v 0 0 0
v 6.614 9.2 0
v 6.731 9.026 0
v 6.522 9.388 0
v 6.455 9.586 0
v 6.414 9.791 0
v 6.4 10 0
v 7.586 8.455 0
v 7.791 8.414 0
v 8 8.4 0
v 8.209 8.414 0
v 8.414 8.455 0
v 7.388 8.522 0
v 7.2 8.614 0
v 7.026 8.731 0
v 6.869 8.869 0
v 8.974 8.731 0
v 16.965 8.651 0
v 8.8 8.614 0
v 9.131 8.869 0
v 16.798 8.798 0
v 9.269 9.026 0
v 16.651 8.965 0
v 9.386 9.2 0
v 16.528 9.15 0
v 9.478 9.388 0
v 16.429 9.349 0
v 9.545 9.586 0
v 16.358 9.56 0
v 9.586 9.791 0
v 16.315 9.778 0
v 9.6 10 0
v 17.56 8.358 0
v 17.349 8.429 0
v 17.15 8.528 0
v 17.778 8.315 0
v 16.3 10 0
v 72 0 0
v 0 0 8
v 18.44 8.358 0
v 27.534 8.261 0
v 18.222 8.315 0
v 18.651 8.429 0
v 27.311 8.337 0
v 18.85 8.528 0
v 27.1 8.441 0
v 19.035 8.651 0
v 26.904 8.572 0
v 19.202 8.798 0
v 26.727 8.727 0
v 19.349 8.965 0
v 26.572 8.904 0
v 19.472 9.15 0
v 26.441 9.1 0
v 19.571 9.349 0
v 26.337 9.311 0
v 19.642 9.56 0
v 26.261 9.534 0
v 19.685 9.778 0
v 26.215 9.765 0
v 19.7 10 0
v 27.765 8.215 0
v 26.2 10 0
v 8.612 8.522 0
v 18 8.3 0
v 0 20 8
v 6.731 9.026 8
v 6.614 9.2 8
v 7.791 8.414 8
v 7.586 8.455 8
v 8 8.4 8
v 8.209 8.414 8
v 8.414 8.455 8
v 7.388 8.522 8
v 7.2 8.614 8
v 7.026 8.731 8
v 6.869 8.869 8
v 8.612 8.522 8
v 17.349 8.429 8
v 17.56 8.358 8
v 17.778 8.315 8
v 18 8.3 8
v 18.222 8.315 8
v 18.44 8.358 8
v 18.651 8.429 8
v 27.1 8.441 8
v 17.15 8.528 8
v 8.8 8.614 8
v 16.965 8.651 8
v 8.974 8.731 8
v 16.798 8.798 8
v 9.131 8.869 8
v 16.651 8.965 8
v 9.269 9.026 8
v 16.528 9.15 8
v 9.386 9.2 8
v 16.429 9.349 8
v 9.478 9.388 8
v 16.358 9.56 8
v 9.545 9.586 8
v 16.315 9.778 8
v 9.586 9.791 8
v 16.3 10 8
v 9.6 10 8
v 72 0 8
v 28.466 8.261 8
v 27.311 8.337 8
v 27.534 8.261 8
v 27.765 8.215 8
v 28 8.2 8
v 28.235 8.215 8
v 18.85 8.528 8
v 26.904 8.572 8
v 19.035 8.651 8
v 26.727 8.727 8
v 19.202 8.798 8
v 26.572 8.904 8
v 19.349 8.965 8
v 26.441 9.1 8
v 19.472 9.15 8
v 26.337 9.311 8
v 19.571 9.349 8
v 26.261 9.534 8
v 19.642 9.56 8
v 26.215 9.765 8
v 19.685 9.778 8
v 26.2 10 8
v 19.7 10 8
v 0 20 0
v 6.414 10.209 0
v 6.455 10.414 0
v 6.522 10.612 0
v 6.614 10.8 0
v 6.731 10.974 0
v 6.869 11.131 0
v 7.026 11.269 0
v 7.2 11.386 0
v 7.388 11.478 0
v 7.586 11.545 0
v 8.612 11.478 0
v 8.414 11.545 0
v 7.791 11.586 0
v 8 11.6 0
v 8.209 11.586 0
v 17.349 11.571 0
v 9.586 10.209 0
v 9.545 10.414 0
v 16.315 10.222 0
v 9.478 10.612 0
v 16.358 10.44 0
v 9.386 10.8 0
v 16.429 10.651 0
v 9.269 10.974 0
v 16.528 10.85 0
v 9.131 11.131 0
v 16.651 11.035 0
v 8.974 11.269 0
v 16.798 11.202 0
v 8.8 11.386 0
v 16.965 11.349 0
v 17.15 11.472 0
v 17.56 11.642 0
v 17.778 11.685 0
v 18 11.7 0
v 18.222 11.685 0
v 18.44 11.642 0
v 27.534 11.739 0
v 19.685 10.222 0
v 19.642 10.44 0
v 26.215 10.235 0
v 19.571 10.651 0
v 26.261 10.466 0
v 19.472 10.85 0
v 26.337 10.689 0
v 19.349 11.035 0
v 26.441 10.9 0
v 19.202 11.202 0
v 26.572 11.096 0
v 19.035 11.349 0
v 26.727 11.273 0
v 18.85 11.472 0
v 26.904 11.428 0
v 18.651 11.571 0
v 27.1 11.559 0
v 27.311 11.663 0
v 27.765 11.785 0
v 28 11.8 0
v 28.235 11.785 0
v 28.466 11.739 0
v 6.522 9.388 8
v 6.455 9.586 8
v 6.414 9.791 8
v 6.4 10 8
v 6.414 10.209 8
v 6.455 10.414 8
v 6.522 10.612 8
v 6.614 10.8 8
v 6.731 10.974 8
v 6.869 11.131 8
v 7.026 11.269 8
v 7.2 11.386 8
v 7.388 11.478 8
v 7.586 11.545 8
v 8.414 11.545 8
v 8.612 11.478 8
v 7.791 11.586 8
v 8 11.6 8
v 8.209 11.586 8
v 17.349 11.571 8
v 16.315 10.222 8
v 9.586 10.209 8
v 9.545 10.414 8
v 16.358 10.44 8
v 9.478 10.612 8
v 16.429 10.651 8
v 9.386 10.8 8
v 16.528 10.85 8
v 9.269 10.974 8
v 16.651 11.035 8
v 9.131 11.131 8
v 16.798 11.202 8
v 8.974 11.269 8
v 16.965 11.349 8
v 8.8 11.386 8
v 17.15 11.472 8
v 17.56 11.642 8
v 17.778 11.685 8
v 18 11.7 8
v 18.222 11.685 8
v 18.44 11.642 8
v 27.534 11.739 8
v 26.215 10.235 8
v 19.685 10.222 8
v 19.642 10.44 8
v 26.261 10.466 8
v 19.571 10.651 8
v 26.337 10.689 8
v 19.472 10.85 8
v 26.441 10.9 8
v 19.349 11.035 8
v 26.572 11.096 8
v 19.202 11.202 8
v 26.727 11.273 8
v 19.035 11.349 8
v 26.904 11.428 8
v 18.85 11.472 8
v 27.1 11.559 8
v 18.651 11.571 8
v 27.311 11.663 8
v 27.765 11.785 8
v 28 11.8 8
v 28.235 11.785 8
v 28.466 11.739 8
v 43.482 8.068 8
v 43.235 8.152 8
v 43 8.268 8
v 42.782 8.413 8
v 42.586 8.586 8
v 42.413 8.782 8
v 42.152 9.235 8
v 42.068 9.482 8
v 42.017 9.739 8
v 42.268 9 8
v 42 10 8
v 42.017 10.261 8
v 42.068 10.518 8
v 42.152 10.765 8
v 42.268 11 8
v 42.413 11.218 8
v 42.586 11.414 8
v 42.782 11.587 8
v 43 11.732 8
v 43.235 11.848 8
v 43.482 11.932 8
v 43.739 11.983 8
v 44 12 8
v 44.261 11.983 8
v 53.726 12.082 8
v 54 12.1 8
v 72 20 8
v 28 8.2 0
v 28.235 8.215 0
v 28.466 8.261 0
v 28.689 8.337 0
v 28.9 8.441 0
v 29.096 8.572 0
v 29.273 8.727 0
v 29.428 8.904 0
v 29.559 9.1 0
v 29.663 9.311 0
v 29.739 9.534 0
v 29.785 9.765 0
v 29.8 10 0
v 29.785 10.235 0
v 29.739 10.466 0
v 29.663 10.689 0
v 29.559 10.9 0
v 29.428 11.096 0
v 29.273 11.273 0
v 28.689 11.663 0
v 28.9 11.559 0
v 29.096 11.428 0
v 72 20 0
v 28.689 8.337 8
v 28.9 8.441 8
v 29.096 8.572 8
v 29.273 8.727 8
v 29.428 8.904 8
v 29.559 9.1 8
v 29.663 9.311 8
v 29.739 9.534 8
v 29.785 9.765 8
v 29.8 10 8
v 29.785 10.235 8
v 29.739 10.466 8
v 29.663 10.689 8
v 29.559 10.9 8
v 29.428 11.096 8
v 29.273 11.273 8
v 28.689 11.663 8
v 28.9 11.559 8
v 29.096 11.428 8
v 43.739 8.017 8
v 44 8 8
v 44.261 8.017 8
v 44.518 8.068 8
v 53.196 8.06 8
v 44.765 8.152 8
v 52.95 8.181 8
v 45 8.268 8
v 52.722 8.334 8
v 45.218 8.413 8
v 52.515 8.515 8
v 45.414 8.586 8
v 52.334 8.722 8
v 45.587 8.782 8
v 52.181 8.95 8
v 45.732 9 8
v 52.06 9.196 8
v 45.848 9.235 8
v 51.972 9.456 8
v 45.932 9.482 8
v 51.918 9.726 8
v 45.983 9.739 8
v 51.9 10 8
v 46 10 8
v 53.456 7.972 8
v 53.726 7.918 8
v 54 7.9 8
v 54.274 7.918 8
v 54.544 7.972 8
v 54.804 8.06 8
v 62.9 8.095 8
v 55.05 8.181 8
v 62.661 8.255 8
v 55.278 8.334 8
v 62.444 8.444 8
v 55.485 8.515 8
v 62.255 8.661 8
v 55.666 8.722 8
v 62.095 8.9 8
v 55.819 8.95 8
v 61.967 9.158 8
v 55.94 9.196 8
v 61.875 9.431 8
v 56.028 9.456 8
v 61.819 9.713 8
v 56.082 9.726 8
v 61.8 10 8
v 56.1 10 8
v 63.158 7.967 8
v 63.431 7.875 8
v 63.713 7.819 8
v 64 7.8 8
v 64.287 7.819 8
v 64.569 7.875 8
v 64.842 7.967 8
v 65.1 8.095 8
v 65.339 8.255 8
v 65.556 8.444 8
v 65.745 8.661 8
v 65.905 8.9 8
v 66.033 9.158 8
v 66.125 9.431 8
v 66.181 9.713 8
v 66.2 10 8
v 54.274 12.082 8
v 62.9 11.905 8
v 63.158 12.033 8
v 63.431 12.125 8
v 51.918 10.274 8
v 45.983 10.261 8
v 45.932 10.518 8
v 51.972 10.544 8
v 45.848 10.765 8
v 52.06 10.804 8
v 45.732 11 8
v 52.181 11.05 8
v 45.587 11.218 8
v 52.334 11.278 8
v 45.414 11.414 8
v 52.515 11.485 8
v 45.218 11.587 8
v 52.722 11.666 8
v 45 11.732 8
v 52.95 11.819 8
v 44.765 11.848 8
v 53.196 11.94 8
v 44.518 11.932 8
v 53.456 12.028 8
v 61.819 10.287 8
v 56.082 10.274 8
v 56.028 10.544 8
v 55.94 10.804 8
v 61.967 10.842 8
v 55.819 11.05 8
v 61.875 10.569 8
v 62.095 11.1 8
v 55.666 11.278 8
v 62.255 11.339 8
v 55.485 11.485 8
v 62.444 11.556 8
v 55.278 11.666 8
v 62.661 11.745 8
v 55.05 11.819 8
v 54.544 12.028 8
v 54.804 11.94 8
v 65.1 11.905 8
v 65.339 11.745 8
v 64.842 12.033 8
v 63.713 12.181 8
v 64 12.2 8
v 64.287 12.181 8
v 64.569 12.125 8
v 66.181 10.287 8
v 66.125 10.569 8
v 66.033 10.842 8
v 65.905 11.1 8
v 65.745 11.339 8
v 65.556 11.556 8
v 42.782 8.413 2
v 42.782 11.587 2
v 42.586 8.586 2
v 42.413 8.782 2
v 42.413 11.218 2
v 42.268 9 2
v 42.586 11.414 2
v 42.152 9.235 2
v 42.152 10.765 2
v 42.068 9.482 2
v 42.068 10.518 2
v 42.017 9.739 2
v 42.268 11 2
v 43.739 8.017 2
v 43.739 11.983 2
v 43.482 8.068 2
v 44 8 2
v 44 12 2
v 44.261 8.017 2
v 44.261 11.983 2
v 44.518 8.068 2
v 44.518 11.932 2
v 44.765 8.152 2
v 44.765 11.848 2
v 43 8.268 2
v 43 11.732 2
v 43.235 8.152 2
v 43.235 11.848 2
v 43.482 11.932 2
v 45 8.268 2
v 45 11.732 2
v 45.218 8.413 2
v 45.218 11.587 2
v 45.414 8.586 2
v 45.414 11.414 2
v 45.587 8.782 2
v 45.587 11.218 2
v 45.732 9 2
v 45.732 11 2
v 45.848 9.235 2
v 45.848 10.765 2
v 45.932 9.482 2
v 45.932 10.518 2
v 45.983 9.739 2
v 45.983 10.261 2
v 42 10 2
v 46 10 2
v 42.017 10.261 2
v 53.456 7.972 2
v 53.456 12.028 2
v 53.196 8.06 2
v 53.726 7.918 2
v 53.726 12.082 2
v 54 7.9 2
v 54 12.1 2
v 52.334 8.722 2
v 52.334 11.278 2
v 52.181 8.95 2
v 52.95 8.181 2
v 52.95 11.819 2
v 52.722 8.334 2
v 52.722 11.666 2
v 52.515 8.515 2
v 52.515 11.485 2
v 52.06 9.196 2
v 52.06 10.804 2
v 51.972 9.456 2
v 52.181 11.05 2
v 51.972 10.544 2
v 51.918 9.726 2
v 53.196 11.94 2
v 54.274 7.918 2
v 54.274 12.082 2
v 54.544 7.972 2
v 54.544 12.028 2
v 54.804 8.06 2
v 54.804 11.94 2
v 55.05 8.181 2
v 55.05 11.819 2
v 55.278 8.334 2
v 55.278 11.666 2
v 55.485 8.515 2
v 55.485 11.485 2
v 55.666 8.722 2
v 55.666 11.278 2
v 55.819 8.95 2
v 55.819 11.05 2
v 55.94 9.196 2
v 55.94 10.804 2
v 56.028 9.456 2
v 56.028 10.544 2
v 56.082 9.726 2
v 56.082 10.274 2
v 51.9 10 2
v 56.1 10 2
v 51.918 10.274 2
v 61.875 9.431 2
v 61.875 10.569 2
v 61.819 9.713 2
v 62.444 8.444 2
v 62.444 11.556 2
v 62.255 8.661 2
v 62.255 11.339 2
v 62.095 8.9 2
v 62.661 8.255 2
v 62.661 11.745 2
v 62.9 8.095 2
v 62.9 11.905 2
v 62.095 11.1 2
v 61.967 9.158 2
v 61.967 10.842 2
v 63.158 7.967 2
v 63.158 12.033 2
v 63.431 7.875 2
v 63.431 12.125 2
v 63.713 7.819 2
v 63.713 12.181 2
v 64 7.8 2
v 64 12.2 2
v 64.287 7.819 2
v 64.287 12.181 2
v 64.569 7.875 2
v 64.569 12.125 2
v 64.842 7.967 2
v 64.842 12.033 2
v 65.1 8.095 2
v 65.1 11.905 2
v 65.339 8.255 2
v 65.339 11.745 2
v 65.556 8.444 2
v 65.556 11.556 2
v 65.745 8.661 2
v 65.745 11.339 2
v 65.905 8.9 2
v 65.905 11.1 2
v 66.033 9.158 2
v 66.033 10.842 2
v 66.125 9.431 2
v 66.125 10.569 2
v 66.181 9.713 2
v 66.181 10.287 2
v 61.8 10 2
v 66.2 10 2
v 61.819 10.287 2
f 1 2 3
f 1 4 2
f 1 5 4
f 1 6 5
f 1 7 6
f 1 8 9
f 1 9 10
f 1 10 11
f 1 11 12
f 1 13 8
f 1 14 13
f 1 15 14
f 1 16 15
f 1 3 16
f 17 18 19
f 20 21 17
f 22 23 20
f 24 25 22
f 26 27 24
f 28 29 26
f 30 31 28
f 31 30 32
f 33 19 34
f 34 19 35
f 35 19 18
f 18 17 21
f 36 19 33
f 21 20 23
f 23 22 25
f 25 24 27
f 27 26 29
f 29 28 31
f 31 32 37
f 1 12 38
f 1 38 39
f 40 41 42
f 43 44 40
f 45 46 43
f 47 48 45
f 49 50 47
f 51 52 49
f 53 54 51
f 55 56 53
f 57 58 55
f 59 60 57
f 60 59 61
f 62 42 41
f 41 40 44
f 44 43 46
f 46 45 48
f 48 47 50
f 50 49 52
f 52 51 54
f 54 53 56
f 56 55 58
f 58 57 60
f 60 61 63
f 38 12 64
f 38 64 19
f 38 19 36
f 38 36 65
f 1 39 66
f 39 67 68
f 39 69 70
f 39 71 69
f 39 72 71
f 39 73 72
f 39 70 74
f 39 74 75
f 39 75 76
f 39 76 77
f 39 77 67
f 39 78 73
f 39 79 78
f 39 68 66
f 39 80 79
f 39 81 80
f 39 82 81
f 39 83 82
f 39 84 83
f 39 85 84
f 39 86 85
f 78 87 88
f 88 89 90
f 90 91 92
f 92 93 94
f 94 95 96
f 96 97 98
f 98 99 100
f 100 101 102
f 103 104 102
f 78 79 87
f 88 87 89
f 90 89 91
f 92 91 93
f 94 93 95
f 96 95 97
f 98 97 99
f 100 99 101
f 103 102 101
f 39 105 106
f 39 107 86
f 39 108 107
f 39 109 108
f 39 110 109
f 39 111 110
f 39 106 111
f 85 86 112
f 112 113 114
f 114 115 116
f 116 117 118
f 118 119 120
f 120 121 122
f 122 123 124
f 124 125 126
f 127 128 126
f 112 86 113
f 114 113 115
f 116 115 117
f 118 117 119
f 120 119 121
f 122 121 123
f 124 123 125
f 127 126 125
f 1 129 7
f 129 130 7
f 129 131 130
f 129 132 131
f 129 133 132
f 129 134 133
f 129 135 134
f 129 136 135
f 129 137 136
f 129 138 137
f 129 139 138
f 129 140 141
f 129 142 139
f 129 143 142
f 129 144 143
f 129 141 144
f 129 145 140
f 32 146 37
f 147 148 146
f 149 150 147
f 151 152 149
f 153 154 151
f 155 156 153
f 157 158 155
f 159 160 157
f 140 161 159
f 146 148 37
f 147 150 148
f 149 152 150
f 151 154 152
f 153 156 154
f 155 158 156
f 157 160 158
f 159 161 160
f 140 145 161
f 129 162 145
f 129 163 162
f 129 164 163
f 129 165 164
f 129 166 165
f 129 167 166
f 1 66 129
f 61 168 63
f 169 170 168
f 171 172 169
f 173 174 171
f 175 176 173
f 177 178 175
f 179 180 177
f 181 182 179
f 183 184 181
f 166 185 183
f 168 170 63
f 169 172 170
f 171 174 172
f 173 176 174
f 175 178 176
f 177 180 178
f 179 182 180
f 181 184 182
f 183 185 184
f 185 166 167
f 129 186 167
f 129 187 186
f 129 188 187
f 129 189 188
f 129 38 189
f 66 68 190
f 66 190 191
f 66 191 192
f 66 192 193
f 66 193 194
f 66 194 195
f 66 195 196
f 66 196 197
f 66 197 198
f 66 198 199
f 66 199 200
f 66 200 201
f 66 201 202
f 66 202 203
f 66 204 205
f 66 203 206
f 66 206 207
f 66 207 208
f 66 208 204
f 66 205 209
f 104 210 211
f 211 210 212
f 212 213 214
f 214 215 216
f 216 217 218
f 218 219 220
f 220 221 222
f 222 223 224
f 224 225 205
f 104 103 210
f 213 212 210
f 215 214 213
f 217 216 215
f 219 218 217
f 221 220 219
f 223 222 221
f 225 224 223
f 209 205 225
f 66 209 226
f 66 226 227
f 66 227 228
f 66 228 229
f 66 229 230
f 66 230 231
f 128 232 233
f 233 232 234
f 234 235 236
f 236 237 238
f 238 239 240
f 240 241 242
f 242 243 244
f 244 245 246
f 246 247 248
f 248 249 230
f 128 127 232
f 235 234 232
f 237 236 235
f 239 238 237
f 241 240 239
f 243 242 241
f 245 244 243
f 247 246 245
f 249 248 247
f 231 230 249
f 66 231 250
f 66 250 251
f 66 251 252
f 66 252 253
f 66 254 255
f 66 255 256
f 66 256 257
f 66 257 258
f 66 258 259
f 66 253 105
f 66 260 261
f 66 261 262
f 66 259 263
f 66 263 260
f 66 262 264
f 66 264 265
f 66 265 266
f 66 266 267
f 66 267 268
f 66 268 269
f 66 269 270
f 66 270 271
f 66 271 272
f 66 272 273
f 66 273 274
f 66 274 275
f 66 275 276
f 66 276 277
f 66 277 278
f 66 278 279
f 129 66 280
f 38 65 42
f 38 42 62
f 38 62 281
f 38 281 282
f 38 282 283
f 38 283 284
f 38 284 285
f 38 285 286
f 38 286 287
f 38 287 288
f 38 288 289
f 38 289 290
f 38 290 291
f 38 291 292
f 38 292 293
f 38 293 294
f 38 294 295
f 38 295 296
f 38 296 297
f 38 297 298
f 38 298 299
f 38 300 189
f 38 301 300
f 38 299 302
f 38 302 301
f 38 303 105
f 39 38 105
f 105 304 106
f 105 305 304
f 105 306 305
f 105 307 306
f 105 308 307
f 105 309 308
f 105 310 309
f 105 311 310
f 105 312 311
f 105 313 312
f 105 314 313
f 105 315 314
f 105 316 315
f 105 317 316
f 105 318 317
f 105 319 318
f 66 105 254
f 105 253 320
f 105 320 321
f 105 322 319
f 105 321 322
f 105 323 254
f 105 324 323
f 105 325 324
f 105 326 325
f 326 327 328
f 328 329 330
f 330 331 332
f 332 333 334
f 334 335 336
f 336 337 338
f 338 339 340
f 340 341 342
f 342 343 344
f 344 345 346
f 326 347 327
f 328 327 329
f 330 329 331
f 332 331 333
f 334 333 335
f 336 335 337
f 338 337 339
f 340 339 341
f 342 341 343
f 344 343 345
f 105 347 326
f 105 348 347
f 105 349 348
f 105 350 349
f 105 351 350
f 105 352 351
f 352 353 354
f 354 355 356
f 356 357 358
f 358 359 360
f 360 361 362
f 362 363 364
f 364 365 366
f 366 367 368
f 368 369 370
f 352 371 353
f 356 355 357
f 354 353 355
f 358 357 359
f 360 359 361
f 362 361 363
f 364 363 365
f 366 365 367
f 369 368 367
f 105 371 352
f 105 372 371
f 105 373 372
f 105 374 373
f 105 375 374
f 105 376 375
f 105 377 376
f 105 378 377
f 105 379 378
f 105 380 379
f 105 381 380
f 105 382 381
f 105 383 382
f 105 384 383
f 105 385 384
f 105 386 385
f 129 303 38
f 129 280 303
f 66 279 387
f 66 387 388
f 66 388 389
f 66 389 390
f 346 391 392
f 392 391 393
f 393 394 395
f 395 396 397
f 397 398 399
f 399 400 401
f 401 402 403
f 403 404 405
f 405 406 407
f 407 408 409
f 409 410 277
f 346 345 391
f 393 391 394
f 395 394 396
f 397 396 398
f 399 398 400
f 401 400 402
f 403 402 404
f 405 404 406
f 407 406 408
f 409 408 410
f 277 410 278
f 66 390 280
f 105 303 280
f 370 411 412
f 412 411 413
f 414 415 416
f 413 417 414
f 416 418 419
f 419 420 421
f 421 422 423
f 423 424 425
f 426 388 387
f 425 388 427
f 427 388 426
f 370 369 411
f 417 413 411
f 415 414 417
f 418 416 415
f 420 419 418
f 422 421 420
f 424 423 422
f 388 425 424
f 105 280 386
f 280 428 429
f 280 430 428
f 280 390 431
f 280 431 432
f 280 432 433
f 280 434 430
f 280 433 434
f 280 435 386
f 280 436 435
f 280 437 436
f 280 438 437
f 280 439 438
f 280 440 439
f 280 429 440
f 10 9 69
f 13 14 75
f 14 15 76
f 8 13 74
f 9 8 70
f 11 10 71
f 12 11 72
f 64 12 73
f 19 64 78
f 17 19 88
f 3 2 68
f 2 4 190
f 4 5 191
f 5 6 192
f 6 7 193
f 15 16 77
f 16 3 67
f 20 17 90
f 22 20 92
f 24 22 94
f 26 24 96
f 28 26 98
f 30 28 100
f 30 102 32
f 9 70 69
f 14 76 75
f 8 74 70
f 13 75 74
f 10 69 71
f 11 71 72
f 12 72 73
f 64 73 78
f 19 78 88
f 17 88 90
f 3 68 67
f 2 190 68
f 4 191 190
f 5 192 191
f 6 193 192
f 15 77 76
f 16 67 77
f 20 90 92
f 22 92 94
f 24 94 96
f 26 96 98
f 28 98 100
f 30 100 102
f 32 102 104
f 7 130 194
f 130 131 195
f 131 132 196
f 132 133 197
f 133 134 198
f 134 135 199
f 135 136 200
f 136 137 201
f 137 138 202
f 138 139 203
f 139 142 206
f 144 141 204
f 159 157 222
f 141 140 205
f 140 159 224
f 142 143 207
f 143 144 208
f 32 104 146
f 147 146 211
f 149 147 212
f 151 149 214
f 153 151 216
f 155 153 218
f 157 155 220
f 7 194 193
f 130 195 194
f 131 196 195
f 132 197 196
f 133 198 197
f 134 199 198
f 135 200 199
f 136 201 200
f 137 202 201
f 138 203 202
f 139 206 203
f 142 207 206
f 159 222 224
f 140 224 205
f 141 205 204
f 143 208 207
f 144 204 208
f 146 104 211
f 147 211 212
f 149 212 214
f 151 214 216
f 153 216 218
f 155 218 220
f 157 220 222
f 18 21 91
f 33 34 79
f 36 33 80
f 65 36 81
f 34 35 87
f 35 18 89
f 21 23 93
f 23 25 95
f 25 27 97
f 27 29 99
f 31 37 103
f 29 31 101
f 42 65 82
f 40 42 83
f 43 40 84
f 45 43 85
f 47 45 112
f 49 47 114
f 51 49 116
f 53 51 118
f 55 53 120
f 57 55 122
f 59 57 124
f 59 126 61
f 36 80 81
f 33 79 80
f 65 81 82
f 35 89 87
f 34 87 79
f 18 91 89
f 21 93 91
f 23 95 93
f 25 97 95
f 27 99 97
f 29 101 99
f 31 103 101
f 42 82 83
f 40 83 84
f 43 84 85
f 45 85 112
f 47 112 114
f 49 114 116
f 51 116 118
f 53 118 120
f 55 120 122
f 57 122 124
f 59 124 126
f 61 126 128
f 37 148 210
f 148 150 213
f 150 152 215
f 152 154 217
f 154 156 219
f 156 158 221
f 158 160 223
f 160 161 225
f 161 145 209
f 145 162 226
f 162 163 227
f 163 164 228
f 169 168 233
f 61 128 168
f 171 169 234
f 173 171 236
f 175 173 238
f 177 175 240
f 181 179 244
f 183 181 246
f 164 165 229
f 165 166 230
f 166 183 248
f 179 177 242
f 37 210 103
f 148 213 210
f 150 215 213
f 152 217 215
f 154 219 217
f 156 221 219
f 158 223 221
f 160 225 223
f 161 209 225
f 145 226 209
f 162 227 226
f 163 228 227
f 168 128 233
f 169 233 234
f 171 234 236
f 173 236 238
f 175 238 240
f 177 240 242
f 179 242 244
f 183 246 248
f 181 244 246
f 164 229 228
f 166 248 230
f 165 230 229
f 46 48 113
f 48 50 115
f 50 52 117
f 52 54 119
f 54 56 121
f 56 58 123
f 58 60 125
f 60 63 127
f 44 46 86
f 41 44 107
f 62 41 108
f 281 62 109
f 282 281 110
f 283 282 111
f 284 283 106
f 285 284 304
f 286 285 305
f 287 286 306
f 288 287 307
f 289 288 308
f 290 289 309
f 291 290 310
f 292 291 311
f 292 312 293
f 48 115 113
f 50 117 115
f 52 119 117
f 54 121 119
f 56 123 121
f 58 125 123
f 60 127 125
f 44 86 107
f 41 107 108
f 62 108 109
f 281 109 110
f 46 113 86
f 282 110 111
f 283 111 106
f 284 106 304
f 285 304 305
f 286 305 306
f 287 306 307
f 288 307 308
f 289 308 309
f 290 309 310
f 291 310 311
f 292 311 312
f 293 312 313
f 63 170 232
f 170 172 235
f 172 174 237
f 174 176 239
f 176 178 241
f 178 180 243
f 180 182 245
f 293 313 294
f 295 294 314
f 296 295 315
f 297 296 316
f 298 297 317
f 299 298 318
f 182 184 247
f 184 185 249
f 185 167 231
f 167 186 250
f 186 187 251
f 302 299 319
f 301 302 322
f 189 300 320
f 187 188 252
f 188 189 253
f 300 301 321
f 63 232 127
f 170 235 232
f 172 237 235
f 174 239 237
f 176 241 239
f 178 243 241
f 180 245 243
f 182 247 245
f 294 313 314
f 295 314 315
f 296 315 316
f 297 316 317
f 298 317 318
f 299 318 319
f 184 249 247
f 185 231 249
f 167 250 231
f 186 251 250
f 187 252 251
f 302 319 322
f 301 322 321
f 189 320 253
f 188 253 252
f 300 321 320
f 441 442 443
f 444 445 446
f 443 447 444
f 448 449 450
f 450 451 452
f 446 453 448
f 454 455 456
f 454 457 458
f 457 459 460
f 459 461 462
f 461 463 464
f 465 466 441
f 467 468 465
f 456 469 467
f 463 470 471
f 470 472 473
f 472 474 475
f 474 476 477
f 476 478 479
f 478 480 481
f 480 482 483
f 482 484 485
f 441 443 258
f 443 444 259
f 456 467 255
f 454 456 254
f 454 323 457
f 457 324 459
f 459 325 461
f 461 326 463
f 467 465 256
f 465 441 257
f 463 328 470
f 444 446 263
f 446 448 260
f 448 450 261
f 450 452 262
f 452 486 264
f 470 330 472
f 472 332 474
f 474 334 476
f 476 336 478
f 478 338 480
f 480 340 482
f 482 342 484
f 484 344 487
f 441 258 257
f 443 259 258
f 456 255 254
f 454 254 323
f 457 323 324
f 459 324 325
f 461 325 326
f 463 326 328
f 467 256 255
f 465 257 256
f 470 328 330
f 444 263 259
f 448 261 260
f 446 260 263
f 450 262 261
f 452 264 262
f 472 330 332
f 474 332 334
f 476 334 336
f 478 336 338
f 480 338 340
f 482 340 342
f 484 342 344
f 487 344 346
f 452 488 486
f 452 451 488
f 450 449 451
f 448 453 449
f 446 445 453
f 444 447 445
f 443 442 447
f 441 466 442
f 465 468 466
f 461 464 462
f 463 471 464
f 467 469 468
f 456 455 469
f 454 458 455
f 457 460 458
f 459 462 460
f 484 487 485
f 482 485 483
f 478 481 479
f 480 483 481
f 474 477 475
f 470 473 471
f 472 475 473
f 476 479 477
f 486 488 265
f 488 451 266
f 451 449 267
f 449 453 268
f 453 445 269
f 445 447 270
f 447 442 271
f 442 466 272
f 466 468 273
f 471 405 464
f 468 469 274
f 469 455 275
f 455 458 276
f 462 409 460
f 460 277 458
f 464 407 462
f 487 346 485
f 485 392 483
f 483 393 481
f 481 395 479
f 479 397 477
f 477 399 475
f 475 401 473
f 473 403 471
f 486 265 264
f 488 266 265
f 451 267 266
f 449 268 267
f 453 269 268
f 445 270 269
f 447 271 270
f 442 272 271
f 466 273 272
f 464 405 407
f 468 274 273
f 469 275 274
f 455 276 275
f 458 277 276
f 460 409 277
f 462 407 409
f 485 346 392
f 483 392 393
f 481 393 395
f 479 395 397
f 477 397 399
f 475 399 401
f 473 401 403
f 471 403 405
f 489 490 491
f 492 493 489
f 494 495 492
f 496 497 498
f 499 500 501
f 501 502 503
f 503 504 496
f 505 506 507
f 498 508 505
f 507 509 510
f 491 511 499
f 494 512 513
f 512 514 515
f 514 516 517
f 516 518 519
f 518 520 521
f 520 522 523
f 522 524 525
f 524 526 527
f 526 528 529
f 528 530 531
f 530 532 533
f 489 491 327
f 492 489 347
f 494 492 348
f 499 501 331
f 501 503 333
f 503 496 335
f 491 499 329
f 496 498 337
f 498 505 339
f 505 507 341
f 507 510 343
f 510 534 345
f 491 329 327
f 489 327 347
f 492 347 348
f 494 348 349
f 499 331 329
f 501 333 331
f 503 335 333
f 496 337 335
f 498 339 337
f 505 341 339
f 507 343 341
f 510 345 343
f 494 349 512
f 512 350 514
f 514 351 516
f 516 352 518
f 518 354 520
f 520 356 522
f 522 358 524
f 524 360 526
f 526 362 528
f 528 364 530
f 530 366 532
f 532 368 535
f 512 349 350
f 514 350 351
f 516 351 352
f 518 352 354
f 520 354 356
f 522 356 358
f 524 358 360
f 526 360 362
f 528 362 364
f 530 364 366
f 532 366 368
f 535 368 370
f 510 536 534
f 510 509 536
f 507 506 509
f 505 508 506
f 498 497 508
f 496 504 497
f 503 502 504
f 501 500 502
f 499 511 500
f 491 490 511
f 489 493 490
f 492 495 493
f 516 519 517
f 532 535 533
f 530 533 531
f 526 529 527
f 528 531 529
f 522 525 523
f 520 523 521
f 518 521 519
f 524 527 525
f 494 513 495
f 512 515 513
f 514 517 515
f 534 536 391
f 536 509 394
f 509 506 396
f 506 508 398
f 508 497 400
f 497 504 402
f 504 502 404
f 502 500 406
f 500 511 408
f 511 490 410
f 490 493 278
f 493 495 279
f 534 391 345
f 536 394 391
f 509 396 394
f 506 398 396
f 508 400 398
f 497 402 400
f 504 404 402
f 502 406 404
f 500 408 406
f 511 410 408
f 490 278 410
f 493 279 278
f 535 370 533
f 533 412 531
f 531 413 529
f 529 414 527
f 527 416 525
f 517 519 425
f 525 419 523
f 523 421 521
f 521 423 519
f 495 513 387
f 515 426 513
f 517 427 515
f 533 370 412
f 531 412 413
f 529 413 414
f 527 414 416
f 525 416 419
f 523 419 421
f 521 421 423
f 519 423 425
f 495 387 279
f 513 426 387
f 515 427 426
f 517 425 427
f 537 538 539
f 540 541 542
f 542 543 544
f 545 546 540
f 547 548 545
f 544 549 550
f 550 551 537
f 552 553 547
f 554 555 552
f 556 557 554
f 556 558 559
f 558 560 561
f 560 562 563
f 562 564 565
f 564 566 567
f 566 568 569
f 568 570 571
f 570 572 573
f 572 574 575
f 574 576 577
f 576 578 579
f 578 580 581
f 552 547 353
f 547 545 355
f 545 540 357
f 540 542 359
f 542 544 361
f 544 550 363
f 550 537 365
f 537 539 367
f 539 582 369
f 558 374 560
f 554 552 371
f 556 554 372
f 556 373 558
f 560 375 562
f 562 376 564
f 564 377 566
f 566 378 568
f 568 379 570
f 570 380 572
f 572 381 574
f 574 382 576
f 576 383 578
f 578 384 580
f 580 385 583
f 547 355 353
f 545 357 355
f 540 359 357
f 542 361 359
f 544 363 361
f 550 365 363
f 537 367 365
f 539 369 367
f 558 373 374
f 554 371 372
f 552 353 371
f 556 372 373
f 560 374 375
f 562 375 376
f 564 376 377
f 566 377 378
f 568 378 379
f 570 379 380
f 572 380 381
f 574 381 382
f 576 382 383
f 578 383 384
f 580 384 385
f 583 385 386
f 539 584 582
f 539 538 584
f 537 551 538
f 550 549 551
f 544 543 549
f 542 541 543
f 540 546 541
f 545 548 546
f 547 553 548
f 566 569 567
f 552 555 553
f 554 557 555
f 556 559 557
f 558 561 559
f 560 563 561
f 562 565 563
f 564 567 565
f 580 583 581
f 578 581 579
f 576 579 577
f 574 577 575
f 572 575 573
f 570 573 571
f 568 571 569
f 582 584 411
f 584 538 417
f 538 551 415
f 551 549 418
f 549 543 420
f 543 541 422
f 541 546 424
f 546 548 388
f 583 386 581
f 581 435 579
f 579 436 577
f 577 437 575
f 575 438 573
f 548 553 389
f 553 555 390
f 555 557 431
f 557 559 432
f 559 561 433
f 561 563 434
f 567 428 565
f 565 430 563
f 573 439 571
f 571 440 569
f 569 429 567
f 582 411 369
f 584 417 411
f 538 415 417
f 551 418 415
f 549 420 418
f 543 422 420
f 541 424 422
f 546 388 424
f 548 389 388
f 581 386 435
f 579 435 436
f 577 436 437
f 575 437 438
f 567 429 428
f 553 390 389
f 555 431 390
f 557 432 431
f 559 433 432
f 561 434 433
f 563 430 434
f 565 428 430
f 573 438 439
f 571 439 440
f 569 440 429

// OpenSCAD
// Generated from parameters.json by build.py. Edit parameters.json, then rebuild.
// CSG and STL share the same source. See docs/enclosure.md. Units mm.
difference() {
cube([72,20,8]);
translate([8, 10, -0.02]) { cylinder(d=3.2,h=8.04,$fn=48); }
translate([18, 10, -0.02]) { cylinder(d=3.4,h=8.04,$fn=48); }
translate([28, 10, -0.02]) { cylinder(d=3.6,h=8.04,$fn=48); }
translate([44, 10, 2]) { cylinder(d=4.0,h=6.02,$fn=48); }
translate([54, 10, 2]) { cylinder(d=4.2,h=6.02,$fn=48); }
translate([64, 10, 2]) { cylinder(d=4.4,h=6.02,$fn=48); }
}
